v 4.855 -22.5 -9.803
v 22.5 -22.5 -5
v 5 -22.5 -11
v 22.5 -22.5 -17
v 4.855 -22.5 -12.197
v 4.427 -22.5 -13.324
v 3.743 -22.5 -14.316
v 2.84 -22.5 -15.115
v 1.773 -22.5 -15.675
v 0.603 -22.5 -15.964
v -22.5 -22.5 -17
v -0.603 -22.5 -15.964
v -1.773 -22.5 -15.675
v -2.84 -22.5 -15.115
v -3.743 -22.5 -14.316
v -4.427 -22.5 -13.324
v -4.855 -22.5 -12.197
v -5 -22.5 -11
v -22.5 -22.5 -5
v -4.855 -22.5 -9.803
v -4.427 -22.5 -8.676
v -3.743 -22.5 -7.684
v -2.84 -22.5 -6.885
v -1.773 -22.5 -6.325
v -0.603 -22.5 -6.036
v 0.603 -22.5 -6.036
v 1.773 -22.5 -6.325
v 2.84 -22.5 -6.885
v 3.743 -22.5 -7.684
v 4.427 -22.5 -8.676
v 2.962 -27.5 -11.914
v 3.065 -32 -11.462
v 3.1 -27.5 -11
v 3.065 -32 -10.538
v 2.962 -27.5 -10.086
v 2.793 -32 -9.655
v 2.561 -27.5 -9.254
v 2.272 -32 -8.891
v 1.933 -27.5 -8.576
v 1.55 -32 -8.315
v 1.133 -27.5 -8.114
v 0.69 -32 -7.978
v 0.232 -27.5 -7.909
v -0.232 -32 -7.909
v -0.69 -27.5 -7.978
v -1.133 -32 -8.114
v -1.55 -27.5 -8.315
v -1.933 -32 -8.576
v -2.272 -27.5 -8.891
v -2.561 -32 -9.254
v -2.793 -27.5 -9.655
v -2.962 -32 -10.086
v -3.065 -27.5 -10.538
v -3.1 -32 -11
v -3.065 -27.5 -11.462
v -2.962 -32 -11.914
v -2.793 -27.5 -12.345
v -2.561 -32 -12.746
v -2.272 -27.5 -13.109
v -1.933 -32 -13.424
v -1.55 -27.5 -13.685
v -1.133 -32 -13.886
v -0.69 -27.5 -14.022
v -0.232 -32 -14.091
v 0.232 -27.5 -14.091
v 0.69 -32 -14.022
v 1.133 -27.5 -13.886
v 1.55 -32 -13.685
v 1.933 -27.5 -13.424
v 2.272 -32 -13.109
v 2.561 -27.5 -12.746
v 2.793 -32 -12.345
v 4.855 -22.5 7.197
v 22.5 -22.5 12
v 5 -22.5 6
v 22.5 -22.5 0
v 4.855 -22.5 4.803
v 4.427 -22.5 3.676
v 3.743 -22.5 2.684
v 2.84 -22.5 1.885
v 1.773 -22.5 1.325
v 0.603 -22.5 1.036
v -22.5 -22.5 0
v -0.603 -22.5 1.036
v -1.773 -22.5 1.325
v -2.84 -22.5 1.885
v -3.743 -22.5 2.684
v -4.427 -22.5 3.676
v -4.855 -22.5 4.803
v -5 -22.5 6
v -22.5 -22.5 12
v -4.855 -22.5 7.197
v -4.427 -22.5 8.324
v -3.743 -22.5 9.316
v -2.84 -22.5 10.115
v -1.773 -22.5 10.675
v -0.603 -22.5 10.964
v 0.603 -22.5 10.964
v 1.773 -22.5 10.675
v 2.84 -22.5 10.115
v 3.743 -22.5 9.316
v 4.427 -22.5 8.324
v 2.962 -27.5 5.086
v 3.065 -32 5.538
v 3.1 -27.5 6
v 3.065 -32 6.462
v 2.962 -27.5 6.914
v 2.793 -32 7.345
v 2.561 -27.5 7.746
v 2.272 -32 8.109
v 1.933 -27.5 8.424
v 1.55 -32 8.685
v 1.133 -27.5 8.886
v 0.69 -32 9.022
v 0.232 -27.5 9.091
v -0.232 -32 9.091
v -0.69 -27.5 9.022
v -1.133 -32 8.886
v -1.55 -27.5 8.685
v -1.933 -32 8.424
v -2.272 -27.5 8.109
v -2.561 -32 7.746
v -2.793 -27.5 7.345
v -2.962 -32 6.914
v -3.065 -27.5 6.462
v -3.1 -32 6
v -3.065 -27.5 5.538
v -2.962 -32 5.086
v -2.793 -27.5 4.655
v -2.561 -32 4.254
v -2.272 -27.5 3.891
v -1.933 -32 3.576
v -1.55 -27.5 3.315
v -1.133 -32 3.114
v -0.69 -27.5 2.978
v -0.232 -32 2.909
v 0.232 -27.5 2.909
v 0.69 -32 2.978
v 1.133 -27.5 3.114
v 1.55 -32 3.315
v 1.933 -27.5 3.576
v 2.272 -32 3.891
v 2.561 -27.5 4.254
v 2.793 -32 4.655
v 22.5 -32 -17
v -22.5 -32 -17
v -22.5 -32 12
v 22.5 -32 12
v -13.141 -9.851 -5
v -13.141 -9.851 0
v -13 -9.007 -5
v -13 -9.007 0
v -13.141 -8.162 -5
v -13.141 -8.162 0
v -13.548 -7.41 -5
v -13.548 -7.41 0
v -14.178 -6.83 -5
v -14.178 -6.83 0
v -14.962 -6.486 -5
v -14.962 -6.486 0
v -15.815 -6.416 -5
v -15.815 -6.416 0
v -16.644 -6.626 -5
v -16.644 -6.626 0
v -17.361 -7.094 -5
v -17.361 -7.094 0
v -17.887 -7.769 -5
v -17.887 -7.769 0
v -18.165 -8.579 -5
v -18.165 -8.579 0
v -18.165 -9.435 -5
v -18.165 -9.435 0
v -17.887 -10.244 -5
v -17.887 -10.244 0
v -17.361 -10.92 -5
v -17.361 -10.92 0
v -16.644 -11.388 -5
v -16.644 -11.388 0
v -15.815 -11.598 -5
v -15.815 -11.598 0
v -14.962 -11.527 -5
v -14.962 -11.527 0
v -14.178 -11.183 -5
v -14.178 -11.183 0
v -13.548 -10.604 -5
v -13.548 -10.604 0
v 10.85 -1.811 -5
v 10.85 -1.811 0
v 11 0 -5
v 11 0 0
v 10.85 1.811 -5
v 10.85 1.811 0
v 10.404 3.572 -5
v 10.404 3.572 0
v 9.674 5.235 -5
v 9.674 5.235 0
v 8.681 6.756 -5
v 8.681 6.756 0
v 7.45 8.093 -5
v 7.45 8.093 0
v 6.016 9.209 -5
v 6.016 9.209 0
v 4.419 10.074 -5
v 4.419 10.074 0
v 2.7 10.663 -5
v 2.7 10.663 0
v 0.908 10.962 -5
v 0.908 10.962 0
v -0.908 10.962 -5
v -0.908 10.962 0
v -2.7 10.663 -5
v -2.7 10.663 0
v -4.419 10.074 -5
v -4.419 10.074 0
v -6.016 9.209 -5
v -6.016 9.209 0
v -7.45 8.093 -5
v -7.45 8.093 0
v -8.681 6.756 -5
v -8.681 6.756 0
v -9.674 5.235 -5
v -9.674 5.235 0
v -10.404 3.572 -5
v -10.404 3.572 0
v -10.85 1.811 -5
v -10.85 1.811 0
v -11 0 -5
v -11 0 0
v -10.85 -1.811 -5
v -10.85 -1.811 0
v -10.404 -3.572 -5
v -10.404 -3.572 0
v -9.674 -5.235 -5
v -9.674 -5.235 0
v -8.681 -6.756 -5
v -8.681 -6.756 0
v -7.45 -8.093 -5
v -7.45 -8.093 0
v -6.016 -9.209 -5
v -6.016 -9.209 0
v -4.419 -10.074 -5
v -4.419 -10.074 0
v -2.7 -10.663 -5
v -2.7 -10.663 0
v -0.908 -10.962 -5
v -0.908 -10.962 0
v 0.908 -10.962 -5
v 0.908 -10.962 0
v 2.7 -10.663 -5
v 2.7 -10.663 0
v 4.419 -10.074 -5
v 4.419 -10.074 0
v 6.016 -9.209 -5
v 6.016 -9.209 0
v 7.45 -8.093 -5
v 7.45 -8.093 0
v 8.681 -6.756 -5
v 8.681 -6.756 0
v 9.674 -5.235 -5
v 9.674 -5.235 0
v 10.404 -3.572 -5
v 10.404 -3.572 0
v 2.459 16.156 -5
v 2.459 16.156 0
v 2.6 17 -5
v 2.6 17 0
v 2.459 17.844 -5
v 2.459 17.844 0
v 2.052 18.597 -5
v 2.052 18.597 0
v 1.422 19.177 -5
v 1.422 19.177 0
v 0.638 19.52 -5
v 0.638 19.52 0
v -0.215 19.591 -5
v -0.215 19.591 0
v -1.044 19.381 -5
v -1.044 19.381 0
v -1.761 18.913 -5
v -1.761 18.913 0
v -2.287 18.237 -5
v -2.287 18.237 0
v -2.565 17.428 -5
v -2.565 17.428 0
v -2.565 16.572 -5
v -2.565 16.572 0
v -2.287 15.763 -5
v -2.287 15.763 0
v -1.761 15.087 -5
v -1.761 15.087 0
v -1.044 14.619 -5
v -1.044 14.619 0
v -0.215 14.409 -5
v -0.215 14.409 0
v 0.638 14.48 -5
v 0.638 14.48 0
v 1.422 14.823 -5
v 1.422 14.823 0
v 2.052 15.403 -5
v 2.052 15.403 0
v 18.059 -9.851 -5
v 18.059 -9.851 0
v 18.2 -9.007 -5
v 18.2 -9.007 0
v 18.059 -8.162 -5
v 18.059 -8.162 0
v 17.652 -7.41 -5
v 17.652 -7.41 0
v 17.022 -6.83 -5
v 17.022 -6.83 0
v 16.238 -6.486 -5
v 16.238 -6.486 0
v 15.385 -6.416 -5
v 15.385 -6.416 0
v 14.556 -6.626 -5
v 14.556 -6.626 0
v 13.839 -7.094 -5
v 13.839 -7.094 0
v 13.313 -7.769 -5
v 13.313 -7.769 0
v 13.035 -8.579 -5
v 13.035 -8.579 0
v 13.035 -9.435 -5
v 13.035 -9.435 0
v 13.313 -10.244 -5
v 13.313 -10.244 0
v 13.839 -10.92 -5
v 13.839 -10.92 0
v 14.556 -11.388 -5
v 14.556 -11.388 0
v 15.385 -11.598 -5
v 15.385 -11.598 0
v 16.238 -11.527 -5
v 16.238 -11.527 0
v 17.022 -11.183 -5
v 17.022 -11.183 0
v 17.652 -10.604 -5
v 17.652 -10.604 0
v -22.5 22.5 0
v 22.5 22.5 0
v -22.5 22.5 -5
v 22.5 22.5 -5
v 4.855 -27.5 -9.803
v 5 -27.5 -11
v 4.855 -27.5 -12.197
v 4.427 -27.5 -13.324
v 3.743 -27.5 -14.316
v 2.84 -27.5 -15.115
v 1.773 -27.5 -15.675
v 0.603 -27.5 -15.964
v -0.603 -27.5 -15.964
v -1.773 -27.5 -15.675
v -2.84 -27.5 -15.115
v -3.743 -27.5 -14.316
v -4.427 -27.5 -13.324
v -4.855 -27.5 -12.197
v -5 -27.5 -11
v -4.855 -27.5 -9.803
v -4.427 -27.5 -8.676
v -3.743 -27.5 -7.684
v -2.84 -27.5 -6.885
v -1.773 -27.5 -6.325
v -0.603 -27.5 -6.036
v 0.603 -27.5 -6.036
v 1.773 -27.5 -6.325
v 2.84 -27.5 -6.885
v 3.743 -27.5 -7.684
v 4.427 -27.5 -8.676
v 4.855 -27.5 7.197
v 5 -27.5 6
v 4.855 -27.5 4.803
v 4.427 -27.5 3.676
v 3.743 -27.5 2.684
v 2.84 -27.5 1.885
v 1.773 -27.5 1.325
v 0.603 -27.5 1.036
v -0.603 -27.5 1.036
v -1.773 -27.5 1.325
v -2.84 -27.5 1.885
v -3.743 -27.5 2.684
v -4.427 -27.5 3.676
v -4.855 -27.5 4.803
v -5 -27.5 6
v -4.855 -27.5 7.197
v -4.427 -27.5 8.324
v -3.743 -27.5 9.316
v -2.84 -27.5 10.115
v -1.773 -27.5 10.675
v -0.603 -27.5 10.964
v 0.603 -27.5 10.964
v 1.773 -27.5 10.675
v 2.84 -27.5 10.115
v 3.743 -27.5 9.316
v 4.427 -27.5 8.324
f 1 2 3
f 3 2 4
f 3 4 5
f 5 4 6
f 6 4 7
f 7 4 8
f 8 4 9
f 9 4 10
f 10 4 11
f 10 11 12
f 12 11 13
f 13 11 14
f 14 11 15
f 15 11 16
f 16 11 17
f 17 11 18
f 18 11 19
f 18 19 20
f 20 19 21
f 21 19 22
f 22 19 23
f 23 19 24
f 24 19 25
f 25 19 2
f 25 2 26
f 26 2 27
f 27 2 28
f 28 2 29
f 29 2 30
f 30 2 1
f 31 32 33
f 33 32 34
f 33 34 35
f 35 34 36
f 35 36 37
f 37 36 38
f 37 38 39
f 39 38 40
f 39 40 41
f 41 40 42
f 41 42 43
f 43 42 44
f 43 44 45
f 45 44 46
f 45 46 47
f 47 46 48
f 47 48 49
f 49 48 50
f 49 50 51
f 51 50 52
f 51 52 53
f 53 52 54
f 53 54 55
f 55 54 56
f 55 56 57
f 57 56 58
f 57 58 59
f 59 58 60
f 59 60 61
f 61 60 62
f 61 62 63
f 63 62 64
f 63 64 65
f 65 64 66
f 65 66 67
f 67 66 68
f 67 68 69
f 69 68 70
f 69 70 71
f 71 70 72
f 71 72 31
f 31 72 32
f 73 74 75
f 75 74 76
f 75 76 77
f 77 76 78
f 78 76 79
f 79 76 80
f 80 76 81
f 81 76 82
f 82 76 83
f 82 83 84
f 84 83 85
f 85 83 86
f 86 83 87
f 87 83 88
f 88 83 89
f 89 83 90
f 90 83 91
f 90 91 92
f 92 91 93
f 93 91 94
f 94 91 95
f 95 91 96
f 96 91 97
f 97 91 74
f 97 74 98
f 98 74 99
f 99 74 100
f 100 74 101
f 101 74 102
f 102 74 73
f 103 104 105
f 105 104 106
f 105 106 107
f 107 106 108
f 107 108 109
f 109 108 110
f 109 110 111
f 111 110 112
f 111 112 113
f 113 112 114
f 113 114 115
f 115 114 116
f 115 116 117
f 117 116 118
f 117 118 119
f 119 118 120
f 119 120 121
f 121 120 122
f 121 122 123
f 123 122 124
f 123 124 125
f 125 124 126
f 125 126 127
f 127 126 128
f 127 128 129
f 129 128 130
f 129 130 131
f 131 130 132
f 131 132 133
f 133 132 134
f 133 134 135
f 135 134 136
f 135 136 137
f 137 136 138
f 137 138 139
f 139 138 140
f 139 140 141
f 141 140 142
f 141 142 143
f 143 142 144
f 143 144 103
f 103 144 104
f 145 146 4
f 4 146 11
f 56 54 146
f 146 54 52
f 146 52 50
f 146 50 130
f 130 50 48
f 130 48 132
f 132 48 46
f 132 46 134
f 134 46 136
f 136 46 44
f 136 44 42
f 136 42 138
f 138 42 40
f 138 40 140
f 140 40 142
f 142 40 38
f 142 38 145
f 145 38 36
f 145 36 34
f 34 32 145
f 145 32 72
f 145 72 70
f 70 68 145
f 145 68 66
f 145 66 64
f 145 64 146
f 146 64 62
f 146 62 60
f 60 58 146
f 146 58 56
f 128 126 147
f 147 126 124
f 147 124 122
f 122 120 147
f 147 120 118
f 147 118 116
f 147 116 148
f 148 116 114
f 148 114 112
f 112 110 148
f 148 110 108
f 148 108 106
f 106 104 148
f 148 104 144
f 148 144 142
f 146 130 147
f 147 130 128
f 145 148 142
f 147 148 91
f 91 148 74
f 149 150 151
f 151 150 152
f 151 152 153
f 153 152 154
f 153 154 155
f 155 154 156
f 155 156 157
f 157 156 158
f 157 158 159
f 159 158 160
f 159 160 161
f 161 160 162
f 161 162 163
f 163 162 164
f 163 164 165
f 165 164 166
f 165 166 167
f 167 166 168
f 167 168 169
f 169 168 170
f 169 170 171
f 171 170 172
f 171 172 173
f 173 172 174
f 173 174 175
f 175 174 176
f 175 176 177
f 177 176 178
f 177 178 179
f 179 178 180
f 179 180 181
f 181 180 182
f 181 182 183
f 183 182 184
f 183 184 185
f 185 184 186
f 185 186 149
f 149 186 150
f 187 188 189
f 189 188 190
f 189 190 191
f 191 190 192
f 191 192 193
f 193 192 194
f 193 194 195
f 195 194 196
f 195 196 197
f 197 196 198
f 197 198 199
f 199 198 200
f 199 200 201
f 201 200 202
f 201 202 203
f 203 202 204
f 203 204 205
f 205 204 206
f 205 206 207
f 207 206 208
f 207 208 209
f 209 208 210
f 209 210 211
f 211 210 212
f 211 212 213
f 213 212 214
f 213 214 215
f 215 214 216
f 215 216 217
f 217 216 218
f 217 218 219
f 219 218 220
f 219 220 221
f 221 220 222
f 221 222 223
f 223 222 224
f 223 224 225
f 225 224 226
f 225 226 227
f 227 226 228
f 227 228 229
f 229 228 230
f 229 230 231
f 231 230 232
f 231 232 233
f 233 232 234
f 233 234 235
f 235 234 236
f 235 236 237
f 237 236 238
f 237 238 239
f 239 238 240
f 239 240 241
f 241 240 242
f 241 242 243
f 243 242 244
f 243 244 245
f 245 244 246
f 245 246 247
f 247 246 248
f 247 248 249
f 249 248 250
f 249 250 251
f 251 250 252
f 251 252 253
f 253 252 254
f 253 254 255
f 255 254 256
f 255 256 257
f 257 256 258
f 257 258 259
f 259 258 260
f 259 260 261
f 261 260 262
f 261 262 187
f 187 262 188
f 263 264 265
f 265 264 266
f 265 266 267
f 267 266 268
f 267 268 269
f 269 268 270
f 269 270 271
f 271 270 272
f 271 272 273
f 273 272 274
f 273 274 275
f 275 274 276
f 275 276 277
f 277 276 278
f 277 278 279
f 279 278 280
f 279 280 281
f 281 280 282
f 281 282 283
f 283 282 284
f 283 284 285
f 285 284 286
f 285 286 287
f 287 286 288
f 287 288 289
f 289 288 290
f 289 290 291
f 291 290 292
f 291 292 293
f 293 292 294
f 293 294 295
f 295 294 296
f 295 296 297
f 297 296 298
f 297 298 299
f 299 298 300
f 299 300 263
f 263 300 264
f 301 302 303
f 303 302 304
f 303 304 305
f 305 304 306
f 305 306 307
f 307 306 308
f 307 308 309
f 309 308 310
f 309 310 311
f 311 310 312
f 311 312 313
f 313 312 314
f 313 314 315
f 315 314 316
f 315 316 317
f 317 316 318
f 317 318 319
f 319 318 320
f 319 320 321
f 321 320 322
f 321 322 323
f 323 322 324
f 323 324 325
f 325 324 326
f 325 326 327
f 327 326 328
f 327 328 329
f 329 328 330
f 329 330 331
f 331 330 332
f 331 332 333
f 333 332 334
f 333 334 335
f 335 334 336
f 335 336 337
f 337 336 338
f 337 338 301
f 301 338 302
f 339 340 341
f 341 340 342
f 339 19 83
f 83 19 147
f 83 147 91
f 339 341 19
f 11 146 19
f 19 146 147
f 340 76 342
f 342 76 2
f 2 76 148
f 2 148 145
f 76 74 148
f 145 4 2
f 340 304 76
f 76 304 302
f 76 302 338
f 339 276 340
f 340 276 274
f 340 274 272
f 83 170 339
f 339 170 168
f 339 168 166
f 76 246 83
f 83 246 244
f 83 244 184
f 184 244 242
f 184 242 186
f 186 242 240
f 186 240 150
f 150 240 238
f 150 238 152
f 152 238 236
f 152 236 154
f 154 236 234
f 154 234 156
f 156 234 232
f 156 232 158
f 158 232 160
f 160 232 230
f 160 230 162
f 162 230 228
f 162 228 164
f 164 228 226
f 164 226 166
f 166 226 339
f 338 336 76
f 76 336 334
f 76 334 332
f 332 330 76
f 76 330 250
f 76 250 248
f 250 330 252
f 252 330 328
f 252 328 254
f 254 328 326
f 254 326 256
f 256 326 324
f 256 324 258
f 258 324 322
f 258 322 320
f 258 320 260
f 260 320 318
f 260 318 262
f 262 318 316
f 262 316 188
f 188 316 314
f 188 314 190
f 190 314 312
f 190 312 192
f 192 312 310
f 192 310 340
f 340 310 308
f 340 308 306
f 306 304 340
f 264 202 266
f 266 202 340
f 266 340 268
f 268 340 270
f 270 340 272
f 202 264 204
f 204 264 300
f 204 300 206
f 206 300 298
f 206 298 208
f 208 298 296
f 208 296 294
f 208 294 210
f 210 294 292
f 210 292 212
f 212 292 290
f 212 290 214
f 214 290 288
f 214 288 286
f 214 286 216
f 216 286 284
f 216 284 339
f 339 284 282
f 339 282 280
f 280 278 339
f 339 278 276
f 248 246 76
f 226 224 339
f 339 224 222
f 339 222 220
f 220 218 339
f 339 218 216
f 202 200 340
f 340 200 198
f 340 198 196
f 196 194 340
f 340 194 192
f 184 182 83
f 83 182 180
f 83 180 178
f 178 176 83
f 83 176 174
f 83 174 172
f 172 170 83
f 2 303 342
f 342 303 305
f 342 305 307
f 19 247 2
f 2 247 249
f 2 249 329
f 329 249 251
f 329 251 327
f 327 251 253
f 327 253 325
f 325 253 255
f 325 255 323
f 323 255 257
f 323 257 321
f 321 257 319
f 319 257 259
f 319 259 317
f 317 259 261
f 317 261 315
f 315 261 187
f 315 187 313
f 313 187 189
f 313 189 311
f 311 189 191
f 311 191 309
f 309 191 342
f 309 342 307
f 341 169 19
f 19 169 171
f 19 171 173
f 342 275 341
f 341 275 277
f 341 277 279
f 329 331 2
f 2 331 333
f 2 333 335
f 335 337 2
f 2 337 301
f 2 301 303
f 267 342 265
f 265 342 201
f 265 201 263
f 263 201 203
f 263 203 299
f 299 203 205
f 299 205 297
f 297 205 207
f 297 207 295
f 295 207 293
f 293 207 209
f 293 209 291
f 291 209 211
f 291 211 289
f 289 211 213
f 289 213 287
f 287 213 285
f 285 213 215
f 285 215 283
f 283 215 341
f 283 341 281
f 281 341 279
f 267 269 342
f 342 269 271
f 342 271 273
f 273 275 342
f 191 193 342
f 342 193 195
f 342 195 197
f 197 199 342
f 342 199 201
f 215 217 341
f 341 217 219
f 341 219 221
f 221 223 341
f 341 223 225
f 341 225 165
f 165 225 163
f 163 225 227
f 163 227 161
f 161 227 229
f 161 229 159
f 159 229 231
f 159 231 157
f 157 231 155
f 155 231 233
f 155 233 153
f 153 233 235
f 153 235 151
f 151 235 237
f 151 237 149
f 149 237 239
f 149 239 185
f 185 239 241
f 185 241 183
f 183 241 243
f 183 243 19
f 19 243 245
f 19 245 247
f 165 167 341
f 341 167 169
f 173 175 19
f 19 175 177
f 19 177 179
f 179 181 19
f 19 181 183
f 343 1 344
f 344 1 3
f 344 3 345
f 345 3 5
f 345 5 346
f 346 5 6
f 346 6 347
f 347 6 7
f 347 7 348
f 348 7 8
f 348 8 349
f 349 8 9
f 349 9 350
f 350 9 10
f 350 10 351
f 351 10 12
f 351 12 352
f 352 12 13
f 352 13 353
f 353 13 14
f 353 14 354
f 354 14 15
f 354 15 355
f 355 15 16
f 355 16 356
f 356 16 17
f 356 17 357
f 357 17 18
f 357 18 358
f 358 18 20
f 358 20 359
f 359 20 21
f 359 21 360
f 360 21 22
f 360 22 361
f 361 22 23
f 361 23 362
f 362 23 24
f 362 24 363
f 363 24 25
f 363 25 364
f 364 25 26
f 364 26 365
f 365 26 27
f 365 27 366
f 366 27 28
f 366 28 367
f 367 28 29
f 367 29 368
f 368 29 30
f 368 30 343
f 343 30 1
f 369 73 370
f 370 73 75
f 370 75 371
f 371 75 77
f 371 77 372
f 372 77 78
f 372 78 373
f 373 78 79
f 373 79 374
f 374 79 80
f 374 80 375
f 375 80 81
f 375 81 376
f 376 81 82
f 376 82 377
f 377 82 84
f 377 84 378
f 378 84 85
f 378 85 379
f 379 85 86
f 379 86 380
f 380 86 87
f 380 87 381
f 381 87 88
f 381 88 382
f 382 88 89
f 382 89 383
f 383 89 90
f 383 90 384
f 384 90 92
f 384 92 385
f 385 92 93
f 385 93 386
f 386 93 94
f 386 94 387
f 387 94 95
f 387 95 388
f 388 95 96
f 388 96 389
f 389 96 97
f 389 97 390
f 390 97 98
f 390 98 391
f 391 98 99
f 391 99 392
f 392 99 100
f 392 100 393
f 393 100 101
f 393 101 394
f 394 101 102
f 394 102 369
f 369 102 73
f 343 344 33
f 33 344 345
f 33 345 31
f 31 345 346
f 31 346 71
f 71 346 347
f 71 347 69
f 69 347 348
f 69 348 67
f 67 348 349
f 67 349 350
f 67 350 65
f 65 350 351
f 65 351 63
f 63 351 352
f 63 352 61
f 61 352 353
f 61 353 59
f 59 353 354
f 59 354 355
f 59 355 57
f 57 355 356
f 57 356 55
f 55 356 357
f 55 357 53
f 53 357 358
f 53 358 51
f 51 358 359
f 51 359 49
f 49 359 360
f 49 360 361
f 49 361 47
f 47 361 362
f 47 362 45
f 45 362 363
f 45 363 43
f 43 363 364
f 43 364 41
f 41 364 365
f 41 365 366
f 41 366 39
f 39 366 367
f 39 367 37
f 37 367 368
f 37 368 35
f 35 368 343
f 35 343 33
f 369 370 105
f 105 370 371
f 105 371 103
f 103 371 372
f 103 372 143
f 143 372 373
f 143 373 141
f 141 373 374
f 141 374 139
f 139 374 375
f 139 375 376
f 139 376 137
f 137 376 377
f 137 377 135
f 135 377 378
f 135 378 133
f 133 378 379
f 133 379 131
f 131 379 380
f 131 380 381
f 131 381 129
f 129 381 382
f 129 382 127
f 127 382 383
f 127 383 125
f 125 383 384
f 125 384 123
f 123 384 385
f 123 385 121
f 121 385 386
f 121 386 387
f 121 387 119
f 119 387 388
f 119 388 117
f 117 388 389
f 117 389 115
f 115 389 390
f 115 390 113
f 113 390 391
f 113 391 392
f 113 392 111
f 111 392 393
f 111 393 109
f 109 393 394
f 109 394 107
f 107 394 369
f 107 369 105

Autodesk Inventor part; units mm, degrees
ref_plane "YZ Plane" through (0, 0, 0) normal (1, 0, 0) x (0, 1, 0)
ref_plane "XZ Plane" through (0, 0, 0) normal (0, 1, 0) x (-1, 0, 0)
ref_plane "XY Plane" through (0, 0, 0) normal (0, 0, 1) x (1, 0, 0)
sketch "Sketch1" plane through (0, 0, 0) normal (0, 0, 1) x (1, 0, 0)
  line L0 (-22.5, -22.5) -> (22.5, -22.5)
  line L1 (22.5, -22.5) -> (22.5, 22.5)
  line L2 (22.5, 22.5) -> (-22.5, 22.5)
  line L3 (-22.5, 22.5) -> (-22.5, -22.5)
  line L4 (-22.5, -22.5) -> (22.5, 22.5) construction
  line L5 (22.5, -22.5) -> (-22.5, 22.5) construction
  circle A0 centre (0, 0) radius 11
  line L6 (0, 0) -> (0, 17)
  line L7 (0, 0) -> (15.6, -9.0067)
  line L8 (0, 0) -> (-15.6, -9.0067)
  circle A1 centre (0, 17) radius 2.6
  circle A2 centre (15.6, -9.0067) radius 2.6
  circle A3 centre (-15.6, -9.0067) radius 2.6
  point P0 (22.5, -11.0947)
  point P1 (-22.5, -11.0947)
  dimension "d0" = 45
  dimension "d1" = 45
  dimension "d2" = 22
  dimension "d3" = 17
  dimension "d4" = 15.6
  dimension "d5" = 120
  dimension "d6" = 15.6
  dimension "d7" = 120
  dimension "d8" = 5.2
  dimension "d9" = 5.2
  dimension "d10" = 5.2
extrude "Extrusion2" add sketch "Sketch1" against normal blind 5
sketch "Sketch16" plane through (0, 0, 0) normal (0, 0, 1) x (1, 0, 0)
  line L0 (0, 0) -> (0, -32)
  line L1 (22.5, -22.5) -> (-22.5, -22.5) projected
  line L2 (-22.5, -22.5) -> (22.5, -22.5)
  line L3 (22.5, -22.5) -> (22.5, -32)
  line L4 (22.5, -32) -> (-22.5, -32)
  line L5 (-22.5, -32) -> (-22.5, -22.5)
  dimension "d37" = 32
extrude "Extrusion9" add sketch "Sketch16" along normal blind 12 and the other way blind 17
sketch "Sketch17" plane through (-22.5, -22.5, 0) normal (0, 1, 0) x (1, 0, 0)
  circle A0 centre (22.5, -6) radius 3.1
  circle A1 centre (22.5, -6) radius 5
  circle A2 centre (22.5, 11) radius 3.1
  circle A3 centre (22.5, 11) radius 5
  point P0 (22.5, 0)
  dimension "d42" = 6.2
  dimension "d43" = 10
  dimension "d44" = 6.2
  dimension "d45" = 10
extrude "Extrusion10" cut sketch "Sketch17" against normal through all contours A0 | A2
extrude "Extrusion11" cut sketch "Sketch17" against normal blind 5
equation "\"d1\" = d0"
equation "\"d4\" = d6"
equation "\"d7\" = d5"
equation "\"d9\" = d8"
equation "\"d10\" = d8"
properties part number "mount_v11"
